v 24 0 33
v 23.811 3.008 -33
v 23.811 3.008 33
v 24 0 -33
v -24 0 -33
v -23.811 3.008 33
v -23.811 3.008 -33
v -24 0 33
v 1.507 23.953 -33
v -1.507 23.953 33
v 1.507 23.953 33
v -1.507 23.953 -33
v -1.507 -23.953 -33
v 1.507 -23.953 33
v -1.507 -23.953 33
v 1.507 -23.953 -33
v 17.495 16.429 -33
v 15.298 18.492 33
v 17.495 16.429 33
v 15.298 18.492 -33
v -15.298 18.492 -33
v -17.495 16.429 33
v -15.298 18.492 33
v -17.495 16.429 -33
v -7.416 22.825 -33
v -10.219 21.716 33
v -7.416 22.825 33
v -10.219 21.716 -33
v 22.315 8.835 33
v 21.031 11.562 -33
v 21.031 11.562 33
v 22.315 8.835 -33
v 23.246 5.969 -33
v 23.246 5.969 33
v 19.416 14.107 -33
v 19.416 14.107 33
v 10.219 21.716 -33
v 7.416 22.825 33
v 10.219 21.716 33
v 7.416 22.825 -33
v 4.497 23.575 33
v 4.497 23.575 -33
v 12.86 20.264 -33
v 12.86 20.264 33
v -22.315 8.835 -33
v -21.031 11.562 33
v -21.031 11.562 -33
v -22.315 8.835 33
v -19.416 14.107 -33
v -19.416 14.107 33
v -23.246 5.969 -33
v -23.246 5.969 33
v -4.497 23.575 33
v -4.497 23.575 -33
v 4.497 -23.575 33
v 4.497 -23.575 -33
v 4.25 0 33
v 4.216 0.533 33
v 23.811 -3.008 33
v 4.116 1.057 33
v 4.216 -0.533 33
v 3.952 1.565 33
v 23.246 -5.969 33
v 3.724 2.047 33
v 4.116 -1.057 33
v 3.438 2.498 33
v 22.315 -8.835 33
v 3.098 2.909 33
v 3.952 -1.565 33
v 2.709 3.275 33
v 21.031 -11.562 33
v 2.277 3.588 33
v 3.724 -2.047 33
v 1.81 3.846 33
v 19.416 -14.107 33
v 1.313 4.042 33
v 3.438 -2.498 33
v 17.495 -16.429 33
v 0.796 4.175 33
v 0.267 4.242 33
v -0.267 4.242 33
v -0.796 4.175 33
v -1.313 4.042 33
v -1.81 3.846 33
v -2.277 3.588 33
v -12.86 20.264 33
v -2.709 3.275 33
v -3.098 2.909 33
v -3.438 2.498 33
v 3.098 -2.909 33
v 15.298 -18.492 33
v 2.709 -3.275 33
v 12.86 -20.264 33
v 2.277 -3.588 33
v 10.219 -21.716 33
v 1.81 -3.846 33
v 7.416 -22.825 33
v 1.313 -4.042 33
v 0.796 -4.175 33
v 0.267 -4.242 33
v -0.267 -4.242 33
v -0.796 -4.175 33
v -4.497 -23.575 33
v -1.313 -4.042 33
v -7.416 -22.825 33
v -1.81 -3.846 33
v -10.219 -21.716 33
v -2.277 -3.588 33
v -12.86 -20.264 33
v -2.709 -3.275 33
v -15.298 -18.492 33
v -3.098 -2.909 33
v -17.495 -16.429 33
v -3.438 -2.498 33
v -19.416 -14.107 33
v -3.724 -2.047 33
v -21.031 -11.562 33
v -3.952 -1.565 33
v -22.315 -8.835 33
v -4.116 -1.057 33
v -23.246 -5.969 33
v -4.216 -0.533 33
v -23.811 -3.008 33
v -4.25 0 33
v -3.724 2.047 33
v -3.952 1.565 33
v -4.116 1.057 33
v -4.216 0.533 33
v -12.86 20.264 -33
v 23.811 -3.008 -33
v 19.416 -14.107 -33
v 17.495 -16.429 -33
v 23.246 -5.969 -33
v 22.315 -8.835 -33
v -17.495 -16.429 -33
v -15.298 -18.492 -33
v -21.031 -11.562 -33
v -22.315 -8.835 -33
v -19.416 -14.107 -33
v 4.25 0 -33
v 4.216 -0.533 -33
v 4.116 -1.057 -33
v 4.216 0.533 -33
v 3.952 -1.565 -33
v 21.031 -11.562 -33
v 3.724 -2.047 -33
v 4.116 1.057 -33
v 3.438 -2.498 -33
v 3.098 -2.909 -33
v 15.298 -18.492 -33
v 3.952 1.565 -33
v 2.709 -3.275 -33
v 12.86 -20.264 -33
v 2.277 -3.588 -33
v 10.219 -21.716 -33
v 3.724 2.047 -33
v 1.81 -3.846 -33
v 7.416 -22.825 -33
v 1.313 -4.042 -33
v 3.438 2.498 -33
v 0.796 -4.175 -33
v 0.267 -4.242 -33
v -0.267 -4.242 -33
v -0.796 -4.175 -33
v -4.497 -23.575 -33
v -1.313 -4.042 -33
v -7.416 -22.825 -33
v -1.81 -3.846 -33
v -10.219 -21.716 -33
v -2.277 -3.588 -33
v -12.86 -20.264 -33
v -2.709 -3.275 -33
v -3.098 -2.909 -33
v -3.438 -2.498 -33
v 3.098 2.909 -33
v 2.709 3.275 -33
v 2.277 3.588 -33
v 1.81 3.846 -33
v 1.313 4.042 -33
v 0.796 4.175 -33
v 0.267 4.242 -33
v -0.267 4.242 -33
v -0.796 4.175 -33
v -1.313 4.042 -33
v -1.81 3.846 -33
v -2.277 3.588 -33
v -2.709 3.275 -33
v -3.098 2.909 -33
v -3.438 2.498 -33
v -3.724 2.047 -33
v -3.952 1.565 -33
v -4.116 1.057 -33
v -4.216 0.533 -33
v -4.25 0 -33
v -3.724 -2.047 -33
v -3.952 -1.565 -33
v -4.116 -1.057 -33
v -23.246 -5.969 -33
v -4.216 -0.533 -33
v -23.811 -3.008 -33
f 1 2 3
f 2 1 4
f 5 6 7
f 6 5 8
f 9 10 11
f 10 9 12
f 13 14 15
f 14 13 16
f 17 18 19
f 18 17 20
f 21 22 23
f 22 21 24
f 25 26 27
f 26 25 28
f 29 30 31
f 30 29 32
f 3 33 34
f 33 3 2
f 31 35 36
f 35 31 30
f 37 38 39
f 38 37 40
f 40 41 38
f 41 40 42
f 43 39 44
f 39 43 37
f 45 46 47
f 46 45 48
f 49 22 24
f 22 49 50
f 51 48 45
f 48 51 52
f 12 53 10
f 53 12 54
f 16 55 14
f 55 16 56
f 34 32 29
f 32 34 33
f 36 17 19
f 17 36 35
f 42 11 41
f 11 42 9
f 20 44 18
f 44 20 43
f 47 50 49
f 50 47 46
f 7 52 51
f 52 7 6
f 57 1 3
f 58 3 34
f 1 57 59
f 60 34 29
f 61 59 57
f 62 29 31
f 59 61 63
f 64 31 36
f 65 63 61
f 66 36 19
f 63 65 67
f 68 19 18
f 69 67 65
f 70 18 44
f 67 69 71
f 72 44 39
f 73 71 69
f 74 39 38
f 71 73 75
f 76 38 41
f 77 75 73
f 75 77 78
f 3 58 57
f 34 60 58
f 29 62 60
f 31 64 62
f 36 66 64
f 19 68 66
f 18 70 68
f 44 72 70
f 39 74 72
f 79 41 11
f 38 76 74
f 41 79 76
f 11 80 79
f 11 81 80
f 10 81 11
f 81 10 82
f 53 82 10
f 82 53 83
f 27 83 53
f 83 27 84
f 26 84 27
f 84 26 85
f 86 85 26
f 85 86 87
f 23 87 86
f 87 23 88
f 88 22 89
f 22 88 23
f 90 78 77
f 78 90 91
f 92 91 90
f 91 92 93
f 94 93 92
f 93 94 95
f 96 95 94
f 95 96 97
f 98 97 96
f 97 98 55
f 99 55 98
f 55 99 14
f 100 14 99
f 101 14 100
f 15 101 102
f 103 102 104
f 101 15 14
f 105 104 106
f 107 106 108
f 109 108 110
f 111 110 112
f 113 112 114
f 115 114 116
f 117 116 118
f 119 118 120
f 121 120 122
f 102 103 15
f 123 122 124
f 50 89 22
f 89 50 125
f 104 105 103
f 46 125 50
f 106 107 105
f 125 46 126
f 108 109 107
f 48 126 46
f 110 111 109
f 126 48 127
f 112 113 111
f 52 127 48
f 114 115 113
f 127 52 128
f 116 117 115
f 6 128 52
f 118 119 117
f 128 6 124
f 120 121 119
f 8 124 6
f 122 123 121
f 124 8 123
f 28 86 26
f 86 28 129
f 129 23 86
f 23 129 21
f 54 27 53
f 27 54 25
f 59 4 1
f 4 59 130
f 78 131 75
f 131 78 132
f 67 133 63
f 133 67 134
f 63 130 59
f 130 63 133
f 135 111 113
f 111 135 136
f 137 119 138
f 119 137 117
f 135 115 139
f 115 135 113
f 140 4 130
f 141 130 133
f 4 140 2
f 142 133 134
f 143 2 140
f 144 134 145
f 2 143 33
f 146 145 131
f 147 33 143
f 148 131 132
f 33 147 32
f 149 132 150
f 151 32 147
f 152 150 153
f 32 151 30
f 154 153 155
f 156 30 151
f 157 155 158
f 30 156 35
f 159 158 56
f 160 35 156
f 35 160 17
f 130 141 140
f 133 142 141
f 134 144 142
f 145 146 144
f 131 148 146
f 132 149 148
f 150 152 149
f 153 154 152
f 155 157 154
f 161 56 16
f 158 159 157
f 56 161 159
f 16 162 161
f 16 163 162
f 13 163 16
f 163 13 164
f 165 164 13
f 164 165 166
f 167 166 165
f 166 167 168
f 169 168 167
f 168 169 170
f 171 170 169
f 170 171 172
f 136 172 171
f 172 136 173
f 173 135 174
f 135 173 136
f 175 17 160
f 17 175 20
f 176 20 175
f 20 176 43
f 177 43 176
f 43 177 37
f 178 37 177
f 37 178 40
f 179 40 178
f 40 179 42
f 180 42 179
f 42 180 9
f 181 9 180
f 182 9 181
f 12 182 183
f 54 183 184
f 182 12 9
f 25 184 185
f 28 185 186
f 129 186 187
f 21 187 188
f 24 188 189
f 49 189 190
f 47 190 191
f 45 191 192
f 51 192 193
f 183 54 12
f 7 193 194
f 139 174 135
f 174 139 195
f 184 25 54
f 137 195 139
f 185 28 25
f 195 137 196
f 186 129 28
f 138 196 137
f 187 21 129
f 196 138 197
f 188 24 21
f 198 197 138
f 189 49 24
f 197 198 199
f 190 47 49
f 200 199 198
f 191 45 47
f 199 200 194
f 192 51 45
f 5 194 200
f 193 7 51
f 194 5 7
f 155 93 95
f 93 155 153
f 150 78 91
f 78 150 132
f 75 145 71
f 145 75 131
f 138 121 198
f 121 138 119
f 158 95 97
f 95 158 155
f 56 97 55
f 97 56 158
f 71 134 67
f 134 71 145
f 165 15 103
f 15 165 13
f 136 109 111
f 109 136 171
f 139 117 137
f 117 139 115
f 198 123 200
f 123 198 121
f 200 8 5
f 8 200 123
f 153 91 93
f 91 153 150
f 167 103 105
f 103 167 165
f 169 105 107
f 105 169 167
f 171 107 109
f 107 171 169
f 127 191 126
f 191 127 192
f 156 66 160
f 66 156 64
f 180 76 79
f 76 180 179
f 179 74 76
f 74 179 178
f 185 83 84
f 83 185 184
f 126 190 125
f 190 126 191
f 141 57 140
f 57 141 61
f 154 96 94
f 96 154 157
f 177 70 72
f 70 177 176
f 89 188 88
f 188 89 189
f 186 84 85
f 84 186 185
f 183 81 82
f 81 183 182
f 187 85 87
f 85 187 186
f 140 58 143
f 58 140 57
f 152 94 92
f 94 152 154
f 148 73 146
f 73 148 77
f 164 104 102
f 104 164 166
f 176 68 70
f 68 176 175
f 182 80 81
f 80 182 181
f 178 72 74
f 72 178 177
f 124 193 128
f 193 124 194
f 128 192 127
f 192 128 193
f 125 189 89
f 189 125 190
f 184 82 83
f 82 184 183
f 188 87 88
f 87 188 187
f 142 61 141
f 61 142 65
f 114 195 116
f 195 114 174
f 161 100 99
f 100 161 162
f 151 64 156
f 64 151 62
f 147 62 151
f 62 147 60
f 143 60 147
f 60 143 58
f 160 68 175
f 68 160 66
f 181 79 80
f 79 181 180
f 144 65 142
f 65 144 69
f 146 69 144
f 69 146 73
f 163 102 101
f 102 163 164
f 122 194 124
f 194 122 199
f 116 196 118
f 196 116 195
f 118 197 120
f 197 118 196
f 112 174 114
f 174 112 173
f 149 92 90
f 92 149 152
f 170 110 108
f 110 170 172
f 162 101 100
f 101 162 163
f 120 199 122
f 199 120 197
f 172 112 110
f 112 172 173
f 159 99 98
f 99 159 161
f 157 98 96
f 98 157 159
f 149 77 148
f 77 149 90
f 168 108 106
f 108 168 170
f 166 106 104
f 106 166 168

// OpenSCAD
$fn = 50;


difference() {
	union() {
		translate(v = [0, 0, -33.0000000000]) {
			cylinder(h = 66, r = 24.0000000000);
		}
	}
	union() {
		translate(v = [0, 0, -100.0000000000]) {
			cylinder(h = 200, r = 4.2500000000);
		}
	}
}
